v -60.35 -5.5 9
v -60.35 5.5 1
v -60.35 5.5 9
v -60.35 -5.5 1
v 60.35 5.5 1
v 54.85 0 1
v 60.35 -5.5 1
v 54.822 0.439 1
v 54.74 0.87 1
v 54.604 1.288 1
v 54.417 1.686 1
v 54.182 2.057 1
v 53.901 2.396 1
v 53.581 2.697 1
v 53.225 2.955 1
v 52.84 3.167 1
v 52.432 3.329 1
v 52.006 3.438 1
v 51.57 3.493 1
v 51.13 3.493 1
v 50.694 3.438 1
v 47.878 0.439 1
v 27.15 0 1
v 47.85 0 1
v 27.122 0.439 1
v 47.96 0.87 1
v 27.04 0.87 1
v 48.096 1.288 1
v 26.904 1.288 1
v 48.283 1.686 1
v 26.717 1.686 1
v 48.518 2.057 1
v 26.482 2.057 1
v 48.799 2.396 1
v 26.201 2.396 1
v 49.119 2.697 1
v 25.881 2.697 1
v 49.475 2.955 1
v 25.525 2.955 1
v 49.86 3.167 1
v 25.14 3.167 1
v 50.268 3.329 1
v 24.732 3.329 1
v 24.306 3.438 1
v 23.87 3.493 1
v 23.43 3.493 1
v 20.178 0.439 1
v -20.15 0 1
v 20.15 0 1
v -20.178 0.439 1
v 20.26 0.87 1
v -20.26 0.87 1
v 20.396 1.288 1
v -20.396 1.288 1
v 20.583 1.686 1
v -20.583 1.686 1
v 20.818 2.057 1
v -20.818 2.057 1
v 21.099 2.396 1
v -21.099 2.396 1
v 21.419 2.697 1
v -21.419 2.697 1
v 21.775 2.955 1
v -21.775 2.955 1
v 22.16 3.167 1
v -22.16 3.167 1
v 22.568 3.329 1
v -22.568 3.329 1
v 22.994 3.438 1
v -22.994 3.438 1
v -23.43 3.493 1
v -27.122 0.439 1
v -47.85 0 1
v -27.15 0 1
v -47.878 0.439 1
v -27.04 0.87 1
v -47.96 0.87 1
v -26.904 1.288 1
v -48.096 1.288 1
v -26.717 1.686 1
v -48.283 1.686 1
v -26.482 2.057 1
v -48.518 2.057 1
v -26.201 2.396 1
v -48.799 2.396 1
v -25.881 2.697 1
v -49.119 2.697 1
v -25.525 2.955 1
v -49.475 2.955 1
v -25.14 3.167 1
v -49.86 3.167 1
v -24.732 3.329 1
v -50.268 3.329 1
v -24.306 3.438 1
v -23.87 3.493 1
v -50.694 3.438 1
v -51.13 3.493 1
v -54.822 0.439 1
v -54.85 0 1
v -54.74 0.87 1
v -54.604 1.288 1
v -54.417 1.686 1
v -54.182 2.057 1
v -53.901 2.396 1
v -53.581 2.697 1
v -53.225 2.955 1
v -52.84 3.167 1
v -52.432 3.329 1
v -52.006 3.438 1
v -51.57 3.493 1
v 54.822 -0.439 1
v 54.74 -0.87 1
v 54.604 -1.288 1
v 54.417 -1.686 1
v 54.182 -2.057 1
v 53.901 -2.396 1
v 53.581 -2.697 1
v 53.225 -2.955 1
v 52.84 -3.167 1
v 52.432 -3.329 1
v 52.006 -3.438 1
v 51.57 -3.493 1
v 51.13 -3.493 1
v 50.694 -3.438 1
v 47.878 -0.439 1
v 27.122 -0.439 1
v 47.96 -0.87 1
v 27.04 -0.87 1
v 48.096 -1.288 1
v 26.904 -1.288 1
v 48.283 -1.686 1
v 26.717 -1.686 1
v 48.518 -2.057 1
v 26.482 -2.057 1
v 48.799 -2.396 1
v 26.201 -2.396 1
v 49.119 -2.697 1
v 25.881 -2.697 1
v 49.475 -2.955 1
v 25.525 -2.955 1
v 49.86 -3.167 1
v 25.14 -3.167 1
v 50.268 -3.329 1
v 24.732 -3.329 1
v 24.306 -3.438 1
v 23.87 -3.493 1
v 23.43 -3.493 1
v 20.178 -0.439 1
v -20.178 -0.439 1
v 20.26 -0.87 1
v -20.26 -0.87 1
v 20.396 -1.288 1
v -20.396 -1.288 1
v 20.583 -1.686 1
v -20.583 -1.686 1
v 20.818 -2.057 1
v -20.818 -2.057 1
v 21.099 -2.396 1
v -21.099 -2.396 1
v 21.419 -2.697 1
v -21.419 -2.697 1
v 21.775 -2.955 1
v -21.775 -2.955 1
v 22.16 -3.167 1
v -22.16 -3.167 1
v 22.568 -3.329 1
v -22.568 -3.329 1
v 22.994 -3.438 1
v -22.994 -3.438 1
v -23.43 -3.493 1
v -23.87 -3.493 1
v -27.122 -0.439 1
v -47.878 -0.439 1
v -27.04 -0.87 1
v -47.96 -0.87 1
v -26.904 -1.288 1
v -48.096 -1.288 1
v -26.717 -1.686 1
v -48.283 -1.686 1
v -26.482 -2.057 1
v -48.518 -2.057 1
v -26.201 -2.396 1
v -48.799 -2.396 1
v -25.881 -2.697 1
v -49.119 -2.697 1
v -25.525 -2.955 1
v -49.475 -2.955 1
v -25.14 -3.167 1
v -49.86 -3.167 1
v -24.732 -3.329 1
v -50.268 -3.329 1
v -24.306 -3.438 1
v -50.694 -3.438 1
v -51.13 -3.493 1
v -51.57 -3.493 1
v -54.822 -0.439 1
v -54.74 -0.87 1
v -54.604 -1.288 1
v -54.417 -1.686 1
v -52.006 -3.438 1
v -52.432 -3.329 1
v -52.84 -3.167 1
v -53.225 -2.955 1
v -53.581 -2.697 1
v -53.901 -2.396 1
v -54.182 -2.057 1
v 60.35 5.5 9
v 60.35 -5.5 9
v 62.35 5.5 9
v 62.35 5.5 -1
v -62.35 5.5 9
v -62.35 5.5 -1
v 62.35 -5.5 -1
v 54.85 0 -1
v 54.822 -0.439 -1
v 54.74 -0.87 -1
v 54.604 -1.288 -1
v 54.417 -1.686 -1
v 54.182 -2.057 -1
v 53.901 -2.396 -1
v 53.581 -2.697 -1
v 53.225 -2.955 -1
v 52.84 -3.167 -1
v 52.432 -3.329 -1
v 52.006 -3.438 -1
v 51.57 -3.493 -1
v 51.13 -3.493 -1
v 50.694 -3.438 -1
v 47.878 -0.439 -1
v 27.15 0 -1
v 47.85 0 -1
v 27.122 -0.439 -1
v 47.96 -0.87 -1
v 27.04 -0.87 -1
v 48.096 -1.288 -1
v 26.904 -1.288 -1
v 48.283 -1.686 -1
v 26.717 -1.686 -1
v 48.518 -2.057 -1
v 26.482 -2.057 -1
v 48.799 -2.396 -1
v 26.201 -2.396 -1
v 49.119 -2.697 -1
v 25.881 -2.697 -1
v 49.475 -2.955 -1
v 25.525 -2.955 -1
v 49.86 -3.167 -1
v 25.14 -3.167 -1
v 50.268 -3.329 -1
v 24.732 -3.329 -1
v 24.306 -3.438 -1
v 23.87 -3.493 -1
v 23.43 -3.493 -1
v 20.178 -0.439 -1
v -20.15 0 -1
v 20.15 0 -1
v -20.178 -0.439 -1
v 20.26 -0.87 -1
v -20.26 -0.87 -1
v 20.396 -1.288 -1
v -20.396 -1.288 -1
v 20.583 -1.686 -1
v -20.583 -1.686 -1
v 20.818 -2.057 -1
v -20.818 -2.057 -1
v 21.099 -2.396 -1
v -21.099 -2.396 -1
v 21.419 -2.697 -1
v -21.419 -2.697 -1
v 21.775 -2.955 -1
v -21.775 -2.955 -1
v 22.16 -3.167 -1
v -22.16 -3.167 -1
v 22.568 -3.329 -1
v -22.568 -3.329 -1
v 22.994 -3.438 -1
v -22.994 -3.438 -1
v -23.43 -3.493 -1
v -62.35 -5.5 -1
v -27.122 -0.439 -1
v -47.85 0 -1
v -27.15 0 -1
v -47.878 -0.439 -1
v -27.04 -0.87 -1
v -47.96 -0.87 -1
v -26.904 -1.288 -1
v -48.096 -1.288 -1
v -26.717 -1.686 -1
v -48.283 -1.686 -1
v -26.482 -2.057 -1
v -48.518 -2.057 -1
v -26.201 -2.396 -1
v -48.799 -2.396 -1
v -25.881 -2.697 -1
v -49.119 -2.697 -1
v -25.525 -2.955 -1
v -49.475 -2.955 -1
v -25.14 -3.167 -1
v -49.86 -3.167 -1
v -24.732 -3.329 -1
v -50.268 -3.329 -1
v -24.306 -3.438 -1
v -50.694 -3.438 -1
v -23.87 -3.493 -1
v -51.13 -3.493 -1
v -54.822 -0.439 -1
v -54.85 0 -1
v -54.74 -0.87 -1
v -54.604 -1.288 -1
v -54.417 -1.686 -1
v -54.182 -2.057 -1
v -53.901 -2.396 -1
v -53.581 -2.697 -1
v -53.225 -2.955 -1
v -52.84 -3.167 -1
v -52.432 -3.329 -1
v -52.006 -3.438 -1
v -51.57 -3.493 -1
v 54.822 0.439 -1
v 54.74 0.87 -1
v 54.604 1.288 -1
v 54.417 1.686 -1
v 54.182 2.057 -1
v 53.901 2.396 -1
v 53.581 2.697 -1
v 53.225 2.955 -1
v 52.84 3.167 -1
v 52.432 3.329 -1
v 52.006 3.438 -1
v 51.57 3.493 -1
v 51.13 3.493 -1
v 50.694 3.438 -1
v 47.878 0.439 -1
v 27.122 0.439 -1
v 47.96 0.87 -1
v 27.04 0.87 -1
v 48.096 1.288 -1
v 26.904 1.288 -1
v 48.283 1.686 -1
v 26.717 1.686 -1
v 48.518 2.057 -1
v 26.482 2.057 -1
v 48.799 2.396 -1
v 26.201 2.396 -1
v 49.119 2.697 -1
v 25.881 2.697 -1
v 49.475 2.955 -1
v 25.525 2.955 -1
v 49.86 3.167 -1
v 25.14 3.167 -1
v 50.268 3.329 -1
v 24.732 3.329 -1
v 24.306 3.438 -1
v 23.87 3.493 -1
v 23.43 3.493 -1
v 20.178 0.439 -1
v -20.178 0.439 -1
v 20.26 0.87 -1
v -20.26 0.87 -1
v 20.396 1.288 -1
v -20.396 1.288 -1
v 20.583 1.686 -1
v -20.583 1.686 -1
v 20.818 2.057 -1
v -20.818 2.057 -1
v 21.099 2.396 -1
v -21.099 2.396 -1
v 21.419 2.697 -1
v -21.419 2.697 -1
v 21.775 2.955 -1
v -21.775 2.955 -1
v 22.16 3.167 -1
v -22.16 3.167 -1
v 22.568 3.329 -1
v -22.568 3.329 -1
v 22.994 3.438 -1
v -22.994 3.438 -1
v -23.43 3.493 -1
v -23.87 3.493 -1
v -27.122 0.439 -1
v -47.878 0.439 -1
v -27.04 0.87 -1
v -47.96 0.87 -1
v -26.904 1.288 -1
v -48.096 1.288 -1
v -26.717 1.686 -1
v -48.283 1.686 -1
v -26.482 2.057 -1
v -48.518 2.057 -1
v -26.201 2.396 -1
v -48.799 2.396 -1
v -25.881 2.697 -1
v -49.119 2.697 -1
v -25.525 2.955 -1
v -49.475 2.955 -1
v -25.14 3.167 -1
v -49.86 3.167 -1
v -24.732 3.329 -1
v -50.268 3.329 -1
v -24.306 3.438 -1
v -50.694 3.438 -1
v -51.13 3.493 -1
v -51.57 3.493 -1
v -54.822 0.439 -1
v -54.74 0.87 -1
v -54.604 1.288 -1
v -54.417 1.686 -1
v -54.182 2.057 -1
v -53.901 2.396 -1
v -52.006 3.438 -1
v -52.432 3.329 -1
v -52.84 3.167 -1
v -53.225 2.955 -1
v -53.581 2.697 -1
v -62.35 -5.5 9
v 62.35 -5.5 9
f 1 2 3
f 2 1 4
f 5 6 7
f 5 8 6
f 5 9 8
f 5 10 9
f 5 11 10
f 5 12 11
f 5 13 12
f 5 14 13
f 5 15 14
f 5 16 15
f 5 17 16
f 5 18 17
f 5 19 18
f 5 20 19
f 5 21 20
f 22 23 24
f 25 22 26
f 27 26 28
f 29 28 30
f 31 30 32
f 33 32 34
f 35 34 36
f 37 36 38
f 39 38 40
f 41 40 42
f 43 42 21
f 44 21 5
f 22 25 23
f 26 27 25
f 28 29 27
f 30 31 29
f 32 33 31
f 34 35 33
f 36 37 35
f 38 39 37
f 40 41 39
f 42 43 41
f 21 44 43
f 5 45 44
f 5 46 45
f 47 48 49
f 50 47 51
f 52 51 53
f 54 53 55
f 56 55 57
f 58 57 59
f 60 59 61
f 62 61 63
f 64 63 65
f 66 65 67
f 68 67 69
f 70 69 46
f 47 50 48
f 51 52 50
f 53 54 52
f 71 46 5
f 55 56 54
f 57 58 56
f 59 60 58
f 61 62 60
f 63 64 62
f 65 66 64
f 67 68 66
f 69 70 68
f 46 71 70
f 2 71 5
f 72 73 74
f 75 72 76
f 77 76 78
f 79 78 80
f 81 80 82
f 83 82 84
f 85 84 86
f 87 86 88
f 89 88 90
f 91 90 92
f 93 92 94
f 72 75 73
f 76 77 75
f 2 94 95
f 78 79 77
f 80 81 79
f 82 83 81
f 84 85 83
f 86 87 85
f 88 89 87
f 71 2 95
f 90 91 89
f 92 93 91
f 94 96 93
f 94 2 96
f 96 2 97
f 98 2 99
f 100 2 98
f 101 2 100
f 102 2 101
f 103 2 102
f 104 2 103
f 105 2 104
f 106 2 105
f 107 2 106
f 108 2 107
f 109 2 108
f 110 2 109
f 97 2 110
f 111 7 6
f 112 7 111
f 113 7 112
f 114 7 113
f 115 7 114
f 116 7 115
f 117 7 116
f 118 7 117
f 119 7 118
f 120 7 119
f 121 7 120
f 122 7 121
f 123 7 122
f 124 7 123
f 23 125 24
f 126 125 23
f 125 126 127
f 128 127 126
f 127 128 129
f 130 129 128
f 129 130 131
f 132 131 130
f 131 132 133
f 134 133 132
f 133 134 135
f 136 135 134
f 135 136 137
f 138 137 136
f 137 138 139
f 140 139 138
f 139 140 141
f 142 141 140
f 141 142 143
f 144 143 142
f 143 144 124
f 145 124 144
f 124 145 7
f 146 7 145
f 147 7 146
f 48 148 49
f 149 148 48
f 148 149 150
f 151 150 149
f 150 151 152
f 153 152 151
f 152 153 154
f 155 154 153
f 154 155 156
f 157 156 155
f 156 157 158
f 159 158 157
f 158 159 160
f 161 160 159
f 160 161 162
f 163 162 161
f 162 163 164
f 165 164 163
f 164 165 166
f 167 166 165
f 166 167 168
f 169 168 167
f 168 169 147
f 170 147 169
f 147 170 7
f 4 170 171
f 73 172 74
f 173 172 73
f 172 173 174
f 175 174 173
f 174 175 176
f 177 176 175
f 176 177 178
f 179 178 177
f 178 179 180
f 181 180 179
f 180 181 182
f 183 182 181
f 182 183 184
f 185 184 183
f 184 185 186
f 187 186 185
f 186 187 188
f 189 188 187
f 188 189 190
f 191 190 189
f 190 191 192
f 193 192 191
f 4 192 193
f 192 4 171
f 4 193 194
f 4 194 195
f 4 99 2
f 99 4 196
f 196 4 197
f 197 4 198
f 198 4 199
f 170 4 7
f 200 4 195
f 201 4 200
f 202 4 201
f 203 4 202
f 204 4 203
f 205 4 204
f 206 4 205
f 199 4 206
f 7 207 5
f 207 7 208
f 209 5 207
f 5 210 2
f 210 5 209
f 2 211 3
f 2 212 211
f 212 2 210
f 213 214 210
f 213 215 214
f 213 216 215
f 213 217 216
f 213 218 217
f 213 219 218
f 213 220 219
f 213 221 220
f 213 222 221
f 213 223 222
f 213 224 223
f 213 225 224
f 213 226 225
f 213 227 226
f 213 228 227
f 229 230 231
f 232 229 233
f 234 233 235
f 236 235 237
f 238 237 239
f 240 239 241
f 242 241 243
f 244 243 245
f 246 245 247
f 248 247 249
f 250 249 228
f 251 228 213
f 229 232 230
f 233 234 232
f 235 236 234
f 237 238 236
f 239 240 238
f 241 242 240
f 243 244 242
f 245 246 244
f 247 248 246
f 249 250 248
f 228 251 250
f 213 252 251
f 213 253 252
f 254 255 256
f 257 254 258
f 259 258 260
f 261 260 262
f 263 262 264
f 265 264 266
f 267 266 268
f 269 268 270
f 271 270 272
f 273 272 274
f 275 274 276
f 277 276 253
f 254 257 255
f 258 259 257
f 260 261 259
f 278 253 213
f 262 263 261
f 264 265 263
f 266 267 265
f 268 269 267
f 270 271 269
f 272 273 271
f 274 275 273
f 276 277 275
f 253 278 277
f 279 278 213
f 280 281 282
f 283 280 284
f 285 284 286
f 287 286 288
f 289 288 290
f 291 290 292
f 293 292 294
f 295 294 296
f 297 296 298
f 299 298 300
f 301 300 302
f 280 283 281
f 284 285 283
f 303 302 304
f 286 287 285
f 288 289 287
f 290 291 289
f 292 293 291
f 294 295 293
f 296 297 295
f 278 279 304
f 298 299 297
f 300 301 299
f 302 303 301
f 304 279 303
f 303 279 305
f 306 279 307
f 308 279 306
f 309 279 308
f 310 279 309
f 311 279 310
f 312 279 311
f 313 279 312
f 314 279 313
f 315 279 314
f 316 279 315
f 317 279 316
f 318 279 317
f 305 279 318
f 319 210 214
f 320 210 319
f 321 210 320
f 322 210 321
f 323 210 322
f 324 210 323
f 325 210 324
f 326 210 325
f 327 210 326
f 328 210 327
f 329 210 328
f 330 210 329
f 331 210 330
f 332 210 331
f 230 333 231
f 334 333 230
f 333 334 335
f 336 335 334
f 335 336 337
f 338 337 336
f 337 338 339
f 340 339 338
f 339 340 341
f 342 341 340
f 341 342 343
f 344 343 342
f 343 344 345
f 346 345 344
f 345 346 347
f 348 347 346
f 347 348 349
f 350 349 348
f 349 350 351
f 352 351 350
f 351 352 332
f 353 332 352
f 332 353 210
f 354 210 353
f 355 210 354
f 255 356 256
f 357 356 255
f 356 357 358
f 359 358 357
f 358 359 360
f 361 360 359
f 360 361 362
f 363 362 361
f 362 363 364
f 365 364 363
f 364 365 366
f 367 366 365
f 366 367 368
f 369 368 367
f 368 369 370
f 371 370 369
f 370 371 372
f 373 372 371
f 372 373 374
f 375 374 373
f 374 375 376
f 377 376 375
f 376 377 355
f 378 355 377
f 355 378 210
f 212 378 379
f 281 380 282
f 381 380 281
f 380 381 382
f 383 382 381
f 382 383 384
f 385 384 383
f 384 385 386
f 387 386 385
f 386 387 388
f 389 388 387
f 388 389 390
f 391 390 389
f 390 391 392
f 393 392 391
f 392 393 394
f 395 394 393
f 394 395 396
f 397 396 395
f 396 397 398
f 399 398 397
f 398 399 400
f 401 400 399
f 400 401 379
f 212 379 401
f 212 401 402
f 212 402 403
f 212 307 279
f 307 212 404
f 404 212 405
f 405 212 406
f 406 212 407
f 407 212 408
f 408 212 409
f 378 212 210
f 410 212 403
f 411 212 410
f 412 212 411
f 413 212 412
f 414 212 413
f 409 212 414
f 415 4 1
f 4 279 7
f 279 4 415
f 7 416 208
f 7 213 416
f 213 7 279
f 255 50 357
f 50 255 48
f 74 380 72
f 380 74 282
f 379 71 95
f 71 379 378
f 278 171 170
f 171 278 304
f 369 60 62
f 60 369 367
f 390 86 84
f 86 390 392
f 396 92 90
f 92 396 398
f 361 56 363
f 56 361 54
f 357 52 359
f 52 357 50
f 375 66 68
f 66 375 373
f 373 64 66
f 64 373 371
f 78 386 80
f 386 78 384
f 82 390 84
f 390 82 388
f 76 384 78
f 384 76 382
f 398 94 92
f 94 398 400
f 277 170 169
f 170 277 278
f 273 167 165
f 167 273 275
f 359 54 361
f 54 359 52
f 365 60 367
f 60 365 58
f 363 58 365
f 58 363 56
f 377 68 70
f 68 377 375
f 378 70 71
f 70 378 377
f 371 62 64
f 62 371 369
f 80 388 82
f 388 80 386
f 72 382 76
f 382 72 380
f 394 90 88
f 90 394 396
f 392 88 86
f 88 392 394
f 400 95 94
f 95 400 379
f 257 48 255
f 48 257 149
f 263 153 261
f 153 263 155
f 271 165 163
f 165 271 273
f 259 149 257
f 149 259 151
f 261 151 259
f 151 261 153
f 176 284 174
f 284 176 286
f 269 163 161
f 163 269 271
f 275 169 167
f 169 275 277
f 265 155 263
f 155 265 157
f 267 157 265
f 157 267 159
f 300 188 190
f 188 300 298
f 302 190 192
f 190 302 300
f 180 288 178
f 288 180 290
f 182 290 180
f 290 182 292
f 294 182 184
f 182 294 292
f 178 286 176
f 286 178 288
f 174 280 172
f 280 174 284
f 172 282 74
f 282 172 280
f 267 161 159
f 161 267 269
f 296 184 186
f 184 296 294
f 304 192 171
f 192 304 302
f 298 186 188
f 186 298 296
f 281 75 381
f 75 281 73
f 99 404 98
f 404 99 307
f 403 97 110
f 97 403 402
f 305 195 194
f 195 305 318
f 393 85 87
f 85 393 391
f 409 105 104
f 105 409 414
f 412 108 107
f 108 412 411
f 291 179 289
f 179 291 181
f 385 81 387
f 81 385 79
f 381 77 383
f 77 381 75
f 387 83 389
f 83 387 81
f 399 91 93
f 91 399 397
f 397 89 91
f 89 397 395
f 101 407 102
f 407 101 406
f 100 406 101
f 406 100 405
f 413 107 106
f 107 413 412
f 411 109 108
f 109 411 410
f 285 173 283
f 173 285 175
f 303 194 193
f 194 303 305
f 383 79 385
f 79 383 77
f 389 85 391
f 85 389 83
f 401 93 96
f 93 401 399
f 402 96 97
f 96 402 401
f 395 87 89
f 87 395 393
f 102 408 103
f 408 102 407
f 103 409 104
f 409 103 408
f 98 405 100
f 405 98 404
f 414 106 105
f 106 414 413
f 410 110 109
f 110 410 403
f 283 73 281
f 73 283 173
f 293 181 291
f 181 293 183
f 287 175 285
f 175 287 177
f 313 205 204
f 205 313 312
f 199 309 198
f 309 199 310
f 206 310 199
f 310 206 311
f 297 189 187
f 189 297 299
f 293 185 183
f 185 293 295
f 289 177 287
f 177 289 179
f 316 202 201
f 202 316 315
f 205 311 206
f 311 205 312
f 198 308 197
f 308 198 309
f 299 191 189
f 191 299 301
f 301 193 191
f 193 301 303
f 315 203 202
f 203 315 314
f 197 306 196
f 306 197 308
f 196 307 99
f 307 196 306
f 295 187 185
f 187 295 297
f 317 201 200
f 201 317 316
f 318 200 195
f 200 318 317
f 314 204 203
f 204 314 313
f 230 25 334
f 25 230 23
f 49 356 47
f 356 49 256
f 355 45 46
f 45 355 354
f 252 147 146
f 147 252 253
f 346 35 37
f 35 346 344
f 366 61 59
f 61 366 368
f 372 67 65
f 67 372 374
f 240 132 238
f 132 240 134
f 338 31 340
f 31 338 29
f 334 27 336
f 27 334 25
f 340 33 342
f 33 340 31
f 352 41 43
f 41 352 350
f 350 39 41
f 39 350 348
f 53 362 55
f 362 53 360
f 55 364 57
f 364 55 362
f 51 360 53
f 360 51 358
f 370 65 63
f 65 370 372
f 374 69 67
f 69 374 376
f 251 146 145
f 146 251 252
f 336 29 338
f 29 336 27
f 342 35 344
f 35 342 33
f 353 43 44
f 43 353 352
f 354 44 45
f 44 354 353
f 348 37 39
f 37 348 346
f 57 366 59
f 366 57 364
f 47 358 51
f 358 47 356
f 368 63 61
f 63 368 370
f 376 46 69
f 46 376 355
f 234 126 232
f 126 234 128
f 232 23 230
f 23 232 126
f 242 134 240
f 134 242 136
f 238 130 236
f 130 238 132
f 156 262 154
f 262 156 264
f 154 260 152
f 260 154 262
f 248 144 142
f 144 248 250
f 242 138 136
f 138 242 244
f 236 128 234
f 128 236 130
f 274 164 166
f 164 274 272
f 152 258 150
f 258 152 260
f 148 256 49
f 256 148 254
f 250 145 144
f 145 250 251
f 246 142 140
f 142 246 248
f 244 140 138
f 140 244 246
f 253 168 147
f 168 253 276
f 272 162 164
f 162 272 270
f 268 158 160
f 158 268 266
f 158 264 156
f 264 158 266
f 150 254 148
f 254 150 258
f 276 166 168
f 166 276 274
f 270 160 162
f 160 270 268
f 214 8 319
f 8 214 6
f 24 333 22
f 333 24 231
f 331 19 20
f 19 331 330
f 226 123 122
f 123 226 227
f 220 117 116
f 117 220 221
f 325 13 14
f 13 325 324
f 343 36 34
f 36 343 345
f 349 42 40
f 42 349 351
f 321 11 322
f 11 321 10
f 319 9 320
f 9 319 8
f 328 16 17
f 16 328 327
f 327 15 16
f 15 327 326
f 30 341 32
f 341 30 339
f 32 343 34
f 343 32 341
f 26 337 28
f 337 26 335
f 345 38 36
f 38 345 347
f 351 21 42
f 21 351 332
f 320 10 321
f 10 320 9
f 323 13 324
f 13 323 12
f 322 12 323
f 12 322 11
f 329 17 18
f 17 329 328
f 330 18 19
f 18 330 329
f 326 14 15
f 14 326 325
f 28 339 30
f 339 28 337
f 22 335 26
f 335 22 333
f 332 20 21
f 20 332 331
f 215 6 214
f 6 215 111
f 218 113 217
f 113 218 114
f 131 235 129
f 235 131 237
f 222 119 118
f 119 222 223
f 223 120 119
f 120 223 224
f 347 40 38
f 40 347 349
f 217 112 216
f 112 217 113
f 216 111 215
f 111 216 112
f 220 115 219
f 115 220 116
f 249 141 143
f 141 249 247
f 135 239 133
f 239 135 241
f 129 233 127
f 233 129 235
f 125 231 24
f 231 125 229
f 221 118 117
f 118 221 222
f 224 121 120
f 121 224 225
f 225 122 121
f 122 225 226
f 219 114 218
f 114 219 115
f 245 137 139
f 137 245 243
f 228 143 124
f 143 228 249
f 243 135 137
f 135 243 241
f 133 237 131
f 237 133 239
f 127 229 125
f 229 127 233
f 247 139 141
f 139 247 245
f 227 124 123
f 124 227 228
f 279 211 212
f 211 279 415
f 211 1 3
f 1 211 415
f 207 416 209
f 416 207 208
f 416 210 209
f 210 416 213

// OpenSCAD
// octacon led bracket (2 required)
// alias openscad=~/Applications/OpenSCAD-2021.01-x86_64.AppImage
// openscad -o led_bracket.stl led_bracket.scad
// f3d led_bracket.stl

// panel size
pw=150.0;
pw2=pw/2.0;
pw4=pw/4.0;

// display
dw=55.4;
dw2=dw/2.0;
dw4=dw/4.0;

// leds
lw=14;
lh=4;

// support
sw=4;
sw2=sw/2.0;
sw4=sw/4.0;
lsh=10;
lsh2=lsh/2.0;
lshx=lsh+0.2;
lsg=3;
lsg2=lsg/2.0;

// bracket size
bw=(lw+sw)+(pw2+(pw4+dw4))-(pw2-(pw4+dw4));
bw2=bw/2.0;
bh=(lh+lsg)+sw;

// clip
cr=3.5;

// make it smooth
$fn=50;

// main body
difference() {
    cube([bw,bh,2],center=true);
    
    // led clips
    translate([-(pw4-dw4),0,0]) { cylinder(h=5, r=cr, center=true); }
    translate([-(pw4+dw4),0,0]) { cylinder(h=5, r=cr, center=true); }
    translate([+(pw4-dw4),0,0]) { cylinder(h=5, r=cr, center=true); }
    translate([+(pw4+dw4),0,0]) { cylinder(h=5, r=cr, center=true); }
}
translate([-(bw2+(sw2-sw4)),0,lsh2-1]) { cube([sw2,bh,lsh], center=true); }
translate([+(bw2+(sw2-sw4)),0,lsh2-1]) { cube([sw2,bh,lsh], center=true); }
